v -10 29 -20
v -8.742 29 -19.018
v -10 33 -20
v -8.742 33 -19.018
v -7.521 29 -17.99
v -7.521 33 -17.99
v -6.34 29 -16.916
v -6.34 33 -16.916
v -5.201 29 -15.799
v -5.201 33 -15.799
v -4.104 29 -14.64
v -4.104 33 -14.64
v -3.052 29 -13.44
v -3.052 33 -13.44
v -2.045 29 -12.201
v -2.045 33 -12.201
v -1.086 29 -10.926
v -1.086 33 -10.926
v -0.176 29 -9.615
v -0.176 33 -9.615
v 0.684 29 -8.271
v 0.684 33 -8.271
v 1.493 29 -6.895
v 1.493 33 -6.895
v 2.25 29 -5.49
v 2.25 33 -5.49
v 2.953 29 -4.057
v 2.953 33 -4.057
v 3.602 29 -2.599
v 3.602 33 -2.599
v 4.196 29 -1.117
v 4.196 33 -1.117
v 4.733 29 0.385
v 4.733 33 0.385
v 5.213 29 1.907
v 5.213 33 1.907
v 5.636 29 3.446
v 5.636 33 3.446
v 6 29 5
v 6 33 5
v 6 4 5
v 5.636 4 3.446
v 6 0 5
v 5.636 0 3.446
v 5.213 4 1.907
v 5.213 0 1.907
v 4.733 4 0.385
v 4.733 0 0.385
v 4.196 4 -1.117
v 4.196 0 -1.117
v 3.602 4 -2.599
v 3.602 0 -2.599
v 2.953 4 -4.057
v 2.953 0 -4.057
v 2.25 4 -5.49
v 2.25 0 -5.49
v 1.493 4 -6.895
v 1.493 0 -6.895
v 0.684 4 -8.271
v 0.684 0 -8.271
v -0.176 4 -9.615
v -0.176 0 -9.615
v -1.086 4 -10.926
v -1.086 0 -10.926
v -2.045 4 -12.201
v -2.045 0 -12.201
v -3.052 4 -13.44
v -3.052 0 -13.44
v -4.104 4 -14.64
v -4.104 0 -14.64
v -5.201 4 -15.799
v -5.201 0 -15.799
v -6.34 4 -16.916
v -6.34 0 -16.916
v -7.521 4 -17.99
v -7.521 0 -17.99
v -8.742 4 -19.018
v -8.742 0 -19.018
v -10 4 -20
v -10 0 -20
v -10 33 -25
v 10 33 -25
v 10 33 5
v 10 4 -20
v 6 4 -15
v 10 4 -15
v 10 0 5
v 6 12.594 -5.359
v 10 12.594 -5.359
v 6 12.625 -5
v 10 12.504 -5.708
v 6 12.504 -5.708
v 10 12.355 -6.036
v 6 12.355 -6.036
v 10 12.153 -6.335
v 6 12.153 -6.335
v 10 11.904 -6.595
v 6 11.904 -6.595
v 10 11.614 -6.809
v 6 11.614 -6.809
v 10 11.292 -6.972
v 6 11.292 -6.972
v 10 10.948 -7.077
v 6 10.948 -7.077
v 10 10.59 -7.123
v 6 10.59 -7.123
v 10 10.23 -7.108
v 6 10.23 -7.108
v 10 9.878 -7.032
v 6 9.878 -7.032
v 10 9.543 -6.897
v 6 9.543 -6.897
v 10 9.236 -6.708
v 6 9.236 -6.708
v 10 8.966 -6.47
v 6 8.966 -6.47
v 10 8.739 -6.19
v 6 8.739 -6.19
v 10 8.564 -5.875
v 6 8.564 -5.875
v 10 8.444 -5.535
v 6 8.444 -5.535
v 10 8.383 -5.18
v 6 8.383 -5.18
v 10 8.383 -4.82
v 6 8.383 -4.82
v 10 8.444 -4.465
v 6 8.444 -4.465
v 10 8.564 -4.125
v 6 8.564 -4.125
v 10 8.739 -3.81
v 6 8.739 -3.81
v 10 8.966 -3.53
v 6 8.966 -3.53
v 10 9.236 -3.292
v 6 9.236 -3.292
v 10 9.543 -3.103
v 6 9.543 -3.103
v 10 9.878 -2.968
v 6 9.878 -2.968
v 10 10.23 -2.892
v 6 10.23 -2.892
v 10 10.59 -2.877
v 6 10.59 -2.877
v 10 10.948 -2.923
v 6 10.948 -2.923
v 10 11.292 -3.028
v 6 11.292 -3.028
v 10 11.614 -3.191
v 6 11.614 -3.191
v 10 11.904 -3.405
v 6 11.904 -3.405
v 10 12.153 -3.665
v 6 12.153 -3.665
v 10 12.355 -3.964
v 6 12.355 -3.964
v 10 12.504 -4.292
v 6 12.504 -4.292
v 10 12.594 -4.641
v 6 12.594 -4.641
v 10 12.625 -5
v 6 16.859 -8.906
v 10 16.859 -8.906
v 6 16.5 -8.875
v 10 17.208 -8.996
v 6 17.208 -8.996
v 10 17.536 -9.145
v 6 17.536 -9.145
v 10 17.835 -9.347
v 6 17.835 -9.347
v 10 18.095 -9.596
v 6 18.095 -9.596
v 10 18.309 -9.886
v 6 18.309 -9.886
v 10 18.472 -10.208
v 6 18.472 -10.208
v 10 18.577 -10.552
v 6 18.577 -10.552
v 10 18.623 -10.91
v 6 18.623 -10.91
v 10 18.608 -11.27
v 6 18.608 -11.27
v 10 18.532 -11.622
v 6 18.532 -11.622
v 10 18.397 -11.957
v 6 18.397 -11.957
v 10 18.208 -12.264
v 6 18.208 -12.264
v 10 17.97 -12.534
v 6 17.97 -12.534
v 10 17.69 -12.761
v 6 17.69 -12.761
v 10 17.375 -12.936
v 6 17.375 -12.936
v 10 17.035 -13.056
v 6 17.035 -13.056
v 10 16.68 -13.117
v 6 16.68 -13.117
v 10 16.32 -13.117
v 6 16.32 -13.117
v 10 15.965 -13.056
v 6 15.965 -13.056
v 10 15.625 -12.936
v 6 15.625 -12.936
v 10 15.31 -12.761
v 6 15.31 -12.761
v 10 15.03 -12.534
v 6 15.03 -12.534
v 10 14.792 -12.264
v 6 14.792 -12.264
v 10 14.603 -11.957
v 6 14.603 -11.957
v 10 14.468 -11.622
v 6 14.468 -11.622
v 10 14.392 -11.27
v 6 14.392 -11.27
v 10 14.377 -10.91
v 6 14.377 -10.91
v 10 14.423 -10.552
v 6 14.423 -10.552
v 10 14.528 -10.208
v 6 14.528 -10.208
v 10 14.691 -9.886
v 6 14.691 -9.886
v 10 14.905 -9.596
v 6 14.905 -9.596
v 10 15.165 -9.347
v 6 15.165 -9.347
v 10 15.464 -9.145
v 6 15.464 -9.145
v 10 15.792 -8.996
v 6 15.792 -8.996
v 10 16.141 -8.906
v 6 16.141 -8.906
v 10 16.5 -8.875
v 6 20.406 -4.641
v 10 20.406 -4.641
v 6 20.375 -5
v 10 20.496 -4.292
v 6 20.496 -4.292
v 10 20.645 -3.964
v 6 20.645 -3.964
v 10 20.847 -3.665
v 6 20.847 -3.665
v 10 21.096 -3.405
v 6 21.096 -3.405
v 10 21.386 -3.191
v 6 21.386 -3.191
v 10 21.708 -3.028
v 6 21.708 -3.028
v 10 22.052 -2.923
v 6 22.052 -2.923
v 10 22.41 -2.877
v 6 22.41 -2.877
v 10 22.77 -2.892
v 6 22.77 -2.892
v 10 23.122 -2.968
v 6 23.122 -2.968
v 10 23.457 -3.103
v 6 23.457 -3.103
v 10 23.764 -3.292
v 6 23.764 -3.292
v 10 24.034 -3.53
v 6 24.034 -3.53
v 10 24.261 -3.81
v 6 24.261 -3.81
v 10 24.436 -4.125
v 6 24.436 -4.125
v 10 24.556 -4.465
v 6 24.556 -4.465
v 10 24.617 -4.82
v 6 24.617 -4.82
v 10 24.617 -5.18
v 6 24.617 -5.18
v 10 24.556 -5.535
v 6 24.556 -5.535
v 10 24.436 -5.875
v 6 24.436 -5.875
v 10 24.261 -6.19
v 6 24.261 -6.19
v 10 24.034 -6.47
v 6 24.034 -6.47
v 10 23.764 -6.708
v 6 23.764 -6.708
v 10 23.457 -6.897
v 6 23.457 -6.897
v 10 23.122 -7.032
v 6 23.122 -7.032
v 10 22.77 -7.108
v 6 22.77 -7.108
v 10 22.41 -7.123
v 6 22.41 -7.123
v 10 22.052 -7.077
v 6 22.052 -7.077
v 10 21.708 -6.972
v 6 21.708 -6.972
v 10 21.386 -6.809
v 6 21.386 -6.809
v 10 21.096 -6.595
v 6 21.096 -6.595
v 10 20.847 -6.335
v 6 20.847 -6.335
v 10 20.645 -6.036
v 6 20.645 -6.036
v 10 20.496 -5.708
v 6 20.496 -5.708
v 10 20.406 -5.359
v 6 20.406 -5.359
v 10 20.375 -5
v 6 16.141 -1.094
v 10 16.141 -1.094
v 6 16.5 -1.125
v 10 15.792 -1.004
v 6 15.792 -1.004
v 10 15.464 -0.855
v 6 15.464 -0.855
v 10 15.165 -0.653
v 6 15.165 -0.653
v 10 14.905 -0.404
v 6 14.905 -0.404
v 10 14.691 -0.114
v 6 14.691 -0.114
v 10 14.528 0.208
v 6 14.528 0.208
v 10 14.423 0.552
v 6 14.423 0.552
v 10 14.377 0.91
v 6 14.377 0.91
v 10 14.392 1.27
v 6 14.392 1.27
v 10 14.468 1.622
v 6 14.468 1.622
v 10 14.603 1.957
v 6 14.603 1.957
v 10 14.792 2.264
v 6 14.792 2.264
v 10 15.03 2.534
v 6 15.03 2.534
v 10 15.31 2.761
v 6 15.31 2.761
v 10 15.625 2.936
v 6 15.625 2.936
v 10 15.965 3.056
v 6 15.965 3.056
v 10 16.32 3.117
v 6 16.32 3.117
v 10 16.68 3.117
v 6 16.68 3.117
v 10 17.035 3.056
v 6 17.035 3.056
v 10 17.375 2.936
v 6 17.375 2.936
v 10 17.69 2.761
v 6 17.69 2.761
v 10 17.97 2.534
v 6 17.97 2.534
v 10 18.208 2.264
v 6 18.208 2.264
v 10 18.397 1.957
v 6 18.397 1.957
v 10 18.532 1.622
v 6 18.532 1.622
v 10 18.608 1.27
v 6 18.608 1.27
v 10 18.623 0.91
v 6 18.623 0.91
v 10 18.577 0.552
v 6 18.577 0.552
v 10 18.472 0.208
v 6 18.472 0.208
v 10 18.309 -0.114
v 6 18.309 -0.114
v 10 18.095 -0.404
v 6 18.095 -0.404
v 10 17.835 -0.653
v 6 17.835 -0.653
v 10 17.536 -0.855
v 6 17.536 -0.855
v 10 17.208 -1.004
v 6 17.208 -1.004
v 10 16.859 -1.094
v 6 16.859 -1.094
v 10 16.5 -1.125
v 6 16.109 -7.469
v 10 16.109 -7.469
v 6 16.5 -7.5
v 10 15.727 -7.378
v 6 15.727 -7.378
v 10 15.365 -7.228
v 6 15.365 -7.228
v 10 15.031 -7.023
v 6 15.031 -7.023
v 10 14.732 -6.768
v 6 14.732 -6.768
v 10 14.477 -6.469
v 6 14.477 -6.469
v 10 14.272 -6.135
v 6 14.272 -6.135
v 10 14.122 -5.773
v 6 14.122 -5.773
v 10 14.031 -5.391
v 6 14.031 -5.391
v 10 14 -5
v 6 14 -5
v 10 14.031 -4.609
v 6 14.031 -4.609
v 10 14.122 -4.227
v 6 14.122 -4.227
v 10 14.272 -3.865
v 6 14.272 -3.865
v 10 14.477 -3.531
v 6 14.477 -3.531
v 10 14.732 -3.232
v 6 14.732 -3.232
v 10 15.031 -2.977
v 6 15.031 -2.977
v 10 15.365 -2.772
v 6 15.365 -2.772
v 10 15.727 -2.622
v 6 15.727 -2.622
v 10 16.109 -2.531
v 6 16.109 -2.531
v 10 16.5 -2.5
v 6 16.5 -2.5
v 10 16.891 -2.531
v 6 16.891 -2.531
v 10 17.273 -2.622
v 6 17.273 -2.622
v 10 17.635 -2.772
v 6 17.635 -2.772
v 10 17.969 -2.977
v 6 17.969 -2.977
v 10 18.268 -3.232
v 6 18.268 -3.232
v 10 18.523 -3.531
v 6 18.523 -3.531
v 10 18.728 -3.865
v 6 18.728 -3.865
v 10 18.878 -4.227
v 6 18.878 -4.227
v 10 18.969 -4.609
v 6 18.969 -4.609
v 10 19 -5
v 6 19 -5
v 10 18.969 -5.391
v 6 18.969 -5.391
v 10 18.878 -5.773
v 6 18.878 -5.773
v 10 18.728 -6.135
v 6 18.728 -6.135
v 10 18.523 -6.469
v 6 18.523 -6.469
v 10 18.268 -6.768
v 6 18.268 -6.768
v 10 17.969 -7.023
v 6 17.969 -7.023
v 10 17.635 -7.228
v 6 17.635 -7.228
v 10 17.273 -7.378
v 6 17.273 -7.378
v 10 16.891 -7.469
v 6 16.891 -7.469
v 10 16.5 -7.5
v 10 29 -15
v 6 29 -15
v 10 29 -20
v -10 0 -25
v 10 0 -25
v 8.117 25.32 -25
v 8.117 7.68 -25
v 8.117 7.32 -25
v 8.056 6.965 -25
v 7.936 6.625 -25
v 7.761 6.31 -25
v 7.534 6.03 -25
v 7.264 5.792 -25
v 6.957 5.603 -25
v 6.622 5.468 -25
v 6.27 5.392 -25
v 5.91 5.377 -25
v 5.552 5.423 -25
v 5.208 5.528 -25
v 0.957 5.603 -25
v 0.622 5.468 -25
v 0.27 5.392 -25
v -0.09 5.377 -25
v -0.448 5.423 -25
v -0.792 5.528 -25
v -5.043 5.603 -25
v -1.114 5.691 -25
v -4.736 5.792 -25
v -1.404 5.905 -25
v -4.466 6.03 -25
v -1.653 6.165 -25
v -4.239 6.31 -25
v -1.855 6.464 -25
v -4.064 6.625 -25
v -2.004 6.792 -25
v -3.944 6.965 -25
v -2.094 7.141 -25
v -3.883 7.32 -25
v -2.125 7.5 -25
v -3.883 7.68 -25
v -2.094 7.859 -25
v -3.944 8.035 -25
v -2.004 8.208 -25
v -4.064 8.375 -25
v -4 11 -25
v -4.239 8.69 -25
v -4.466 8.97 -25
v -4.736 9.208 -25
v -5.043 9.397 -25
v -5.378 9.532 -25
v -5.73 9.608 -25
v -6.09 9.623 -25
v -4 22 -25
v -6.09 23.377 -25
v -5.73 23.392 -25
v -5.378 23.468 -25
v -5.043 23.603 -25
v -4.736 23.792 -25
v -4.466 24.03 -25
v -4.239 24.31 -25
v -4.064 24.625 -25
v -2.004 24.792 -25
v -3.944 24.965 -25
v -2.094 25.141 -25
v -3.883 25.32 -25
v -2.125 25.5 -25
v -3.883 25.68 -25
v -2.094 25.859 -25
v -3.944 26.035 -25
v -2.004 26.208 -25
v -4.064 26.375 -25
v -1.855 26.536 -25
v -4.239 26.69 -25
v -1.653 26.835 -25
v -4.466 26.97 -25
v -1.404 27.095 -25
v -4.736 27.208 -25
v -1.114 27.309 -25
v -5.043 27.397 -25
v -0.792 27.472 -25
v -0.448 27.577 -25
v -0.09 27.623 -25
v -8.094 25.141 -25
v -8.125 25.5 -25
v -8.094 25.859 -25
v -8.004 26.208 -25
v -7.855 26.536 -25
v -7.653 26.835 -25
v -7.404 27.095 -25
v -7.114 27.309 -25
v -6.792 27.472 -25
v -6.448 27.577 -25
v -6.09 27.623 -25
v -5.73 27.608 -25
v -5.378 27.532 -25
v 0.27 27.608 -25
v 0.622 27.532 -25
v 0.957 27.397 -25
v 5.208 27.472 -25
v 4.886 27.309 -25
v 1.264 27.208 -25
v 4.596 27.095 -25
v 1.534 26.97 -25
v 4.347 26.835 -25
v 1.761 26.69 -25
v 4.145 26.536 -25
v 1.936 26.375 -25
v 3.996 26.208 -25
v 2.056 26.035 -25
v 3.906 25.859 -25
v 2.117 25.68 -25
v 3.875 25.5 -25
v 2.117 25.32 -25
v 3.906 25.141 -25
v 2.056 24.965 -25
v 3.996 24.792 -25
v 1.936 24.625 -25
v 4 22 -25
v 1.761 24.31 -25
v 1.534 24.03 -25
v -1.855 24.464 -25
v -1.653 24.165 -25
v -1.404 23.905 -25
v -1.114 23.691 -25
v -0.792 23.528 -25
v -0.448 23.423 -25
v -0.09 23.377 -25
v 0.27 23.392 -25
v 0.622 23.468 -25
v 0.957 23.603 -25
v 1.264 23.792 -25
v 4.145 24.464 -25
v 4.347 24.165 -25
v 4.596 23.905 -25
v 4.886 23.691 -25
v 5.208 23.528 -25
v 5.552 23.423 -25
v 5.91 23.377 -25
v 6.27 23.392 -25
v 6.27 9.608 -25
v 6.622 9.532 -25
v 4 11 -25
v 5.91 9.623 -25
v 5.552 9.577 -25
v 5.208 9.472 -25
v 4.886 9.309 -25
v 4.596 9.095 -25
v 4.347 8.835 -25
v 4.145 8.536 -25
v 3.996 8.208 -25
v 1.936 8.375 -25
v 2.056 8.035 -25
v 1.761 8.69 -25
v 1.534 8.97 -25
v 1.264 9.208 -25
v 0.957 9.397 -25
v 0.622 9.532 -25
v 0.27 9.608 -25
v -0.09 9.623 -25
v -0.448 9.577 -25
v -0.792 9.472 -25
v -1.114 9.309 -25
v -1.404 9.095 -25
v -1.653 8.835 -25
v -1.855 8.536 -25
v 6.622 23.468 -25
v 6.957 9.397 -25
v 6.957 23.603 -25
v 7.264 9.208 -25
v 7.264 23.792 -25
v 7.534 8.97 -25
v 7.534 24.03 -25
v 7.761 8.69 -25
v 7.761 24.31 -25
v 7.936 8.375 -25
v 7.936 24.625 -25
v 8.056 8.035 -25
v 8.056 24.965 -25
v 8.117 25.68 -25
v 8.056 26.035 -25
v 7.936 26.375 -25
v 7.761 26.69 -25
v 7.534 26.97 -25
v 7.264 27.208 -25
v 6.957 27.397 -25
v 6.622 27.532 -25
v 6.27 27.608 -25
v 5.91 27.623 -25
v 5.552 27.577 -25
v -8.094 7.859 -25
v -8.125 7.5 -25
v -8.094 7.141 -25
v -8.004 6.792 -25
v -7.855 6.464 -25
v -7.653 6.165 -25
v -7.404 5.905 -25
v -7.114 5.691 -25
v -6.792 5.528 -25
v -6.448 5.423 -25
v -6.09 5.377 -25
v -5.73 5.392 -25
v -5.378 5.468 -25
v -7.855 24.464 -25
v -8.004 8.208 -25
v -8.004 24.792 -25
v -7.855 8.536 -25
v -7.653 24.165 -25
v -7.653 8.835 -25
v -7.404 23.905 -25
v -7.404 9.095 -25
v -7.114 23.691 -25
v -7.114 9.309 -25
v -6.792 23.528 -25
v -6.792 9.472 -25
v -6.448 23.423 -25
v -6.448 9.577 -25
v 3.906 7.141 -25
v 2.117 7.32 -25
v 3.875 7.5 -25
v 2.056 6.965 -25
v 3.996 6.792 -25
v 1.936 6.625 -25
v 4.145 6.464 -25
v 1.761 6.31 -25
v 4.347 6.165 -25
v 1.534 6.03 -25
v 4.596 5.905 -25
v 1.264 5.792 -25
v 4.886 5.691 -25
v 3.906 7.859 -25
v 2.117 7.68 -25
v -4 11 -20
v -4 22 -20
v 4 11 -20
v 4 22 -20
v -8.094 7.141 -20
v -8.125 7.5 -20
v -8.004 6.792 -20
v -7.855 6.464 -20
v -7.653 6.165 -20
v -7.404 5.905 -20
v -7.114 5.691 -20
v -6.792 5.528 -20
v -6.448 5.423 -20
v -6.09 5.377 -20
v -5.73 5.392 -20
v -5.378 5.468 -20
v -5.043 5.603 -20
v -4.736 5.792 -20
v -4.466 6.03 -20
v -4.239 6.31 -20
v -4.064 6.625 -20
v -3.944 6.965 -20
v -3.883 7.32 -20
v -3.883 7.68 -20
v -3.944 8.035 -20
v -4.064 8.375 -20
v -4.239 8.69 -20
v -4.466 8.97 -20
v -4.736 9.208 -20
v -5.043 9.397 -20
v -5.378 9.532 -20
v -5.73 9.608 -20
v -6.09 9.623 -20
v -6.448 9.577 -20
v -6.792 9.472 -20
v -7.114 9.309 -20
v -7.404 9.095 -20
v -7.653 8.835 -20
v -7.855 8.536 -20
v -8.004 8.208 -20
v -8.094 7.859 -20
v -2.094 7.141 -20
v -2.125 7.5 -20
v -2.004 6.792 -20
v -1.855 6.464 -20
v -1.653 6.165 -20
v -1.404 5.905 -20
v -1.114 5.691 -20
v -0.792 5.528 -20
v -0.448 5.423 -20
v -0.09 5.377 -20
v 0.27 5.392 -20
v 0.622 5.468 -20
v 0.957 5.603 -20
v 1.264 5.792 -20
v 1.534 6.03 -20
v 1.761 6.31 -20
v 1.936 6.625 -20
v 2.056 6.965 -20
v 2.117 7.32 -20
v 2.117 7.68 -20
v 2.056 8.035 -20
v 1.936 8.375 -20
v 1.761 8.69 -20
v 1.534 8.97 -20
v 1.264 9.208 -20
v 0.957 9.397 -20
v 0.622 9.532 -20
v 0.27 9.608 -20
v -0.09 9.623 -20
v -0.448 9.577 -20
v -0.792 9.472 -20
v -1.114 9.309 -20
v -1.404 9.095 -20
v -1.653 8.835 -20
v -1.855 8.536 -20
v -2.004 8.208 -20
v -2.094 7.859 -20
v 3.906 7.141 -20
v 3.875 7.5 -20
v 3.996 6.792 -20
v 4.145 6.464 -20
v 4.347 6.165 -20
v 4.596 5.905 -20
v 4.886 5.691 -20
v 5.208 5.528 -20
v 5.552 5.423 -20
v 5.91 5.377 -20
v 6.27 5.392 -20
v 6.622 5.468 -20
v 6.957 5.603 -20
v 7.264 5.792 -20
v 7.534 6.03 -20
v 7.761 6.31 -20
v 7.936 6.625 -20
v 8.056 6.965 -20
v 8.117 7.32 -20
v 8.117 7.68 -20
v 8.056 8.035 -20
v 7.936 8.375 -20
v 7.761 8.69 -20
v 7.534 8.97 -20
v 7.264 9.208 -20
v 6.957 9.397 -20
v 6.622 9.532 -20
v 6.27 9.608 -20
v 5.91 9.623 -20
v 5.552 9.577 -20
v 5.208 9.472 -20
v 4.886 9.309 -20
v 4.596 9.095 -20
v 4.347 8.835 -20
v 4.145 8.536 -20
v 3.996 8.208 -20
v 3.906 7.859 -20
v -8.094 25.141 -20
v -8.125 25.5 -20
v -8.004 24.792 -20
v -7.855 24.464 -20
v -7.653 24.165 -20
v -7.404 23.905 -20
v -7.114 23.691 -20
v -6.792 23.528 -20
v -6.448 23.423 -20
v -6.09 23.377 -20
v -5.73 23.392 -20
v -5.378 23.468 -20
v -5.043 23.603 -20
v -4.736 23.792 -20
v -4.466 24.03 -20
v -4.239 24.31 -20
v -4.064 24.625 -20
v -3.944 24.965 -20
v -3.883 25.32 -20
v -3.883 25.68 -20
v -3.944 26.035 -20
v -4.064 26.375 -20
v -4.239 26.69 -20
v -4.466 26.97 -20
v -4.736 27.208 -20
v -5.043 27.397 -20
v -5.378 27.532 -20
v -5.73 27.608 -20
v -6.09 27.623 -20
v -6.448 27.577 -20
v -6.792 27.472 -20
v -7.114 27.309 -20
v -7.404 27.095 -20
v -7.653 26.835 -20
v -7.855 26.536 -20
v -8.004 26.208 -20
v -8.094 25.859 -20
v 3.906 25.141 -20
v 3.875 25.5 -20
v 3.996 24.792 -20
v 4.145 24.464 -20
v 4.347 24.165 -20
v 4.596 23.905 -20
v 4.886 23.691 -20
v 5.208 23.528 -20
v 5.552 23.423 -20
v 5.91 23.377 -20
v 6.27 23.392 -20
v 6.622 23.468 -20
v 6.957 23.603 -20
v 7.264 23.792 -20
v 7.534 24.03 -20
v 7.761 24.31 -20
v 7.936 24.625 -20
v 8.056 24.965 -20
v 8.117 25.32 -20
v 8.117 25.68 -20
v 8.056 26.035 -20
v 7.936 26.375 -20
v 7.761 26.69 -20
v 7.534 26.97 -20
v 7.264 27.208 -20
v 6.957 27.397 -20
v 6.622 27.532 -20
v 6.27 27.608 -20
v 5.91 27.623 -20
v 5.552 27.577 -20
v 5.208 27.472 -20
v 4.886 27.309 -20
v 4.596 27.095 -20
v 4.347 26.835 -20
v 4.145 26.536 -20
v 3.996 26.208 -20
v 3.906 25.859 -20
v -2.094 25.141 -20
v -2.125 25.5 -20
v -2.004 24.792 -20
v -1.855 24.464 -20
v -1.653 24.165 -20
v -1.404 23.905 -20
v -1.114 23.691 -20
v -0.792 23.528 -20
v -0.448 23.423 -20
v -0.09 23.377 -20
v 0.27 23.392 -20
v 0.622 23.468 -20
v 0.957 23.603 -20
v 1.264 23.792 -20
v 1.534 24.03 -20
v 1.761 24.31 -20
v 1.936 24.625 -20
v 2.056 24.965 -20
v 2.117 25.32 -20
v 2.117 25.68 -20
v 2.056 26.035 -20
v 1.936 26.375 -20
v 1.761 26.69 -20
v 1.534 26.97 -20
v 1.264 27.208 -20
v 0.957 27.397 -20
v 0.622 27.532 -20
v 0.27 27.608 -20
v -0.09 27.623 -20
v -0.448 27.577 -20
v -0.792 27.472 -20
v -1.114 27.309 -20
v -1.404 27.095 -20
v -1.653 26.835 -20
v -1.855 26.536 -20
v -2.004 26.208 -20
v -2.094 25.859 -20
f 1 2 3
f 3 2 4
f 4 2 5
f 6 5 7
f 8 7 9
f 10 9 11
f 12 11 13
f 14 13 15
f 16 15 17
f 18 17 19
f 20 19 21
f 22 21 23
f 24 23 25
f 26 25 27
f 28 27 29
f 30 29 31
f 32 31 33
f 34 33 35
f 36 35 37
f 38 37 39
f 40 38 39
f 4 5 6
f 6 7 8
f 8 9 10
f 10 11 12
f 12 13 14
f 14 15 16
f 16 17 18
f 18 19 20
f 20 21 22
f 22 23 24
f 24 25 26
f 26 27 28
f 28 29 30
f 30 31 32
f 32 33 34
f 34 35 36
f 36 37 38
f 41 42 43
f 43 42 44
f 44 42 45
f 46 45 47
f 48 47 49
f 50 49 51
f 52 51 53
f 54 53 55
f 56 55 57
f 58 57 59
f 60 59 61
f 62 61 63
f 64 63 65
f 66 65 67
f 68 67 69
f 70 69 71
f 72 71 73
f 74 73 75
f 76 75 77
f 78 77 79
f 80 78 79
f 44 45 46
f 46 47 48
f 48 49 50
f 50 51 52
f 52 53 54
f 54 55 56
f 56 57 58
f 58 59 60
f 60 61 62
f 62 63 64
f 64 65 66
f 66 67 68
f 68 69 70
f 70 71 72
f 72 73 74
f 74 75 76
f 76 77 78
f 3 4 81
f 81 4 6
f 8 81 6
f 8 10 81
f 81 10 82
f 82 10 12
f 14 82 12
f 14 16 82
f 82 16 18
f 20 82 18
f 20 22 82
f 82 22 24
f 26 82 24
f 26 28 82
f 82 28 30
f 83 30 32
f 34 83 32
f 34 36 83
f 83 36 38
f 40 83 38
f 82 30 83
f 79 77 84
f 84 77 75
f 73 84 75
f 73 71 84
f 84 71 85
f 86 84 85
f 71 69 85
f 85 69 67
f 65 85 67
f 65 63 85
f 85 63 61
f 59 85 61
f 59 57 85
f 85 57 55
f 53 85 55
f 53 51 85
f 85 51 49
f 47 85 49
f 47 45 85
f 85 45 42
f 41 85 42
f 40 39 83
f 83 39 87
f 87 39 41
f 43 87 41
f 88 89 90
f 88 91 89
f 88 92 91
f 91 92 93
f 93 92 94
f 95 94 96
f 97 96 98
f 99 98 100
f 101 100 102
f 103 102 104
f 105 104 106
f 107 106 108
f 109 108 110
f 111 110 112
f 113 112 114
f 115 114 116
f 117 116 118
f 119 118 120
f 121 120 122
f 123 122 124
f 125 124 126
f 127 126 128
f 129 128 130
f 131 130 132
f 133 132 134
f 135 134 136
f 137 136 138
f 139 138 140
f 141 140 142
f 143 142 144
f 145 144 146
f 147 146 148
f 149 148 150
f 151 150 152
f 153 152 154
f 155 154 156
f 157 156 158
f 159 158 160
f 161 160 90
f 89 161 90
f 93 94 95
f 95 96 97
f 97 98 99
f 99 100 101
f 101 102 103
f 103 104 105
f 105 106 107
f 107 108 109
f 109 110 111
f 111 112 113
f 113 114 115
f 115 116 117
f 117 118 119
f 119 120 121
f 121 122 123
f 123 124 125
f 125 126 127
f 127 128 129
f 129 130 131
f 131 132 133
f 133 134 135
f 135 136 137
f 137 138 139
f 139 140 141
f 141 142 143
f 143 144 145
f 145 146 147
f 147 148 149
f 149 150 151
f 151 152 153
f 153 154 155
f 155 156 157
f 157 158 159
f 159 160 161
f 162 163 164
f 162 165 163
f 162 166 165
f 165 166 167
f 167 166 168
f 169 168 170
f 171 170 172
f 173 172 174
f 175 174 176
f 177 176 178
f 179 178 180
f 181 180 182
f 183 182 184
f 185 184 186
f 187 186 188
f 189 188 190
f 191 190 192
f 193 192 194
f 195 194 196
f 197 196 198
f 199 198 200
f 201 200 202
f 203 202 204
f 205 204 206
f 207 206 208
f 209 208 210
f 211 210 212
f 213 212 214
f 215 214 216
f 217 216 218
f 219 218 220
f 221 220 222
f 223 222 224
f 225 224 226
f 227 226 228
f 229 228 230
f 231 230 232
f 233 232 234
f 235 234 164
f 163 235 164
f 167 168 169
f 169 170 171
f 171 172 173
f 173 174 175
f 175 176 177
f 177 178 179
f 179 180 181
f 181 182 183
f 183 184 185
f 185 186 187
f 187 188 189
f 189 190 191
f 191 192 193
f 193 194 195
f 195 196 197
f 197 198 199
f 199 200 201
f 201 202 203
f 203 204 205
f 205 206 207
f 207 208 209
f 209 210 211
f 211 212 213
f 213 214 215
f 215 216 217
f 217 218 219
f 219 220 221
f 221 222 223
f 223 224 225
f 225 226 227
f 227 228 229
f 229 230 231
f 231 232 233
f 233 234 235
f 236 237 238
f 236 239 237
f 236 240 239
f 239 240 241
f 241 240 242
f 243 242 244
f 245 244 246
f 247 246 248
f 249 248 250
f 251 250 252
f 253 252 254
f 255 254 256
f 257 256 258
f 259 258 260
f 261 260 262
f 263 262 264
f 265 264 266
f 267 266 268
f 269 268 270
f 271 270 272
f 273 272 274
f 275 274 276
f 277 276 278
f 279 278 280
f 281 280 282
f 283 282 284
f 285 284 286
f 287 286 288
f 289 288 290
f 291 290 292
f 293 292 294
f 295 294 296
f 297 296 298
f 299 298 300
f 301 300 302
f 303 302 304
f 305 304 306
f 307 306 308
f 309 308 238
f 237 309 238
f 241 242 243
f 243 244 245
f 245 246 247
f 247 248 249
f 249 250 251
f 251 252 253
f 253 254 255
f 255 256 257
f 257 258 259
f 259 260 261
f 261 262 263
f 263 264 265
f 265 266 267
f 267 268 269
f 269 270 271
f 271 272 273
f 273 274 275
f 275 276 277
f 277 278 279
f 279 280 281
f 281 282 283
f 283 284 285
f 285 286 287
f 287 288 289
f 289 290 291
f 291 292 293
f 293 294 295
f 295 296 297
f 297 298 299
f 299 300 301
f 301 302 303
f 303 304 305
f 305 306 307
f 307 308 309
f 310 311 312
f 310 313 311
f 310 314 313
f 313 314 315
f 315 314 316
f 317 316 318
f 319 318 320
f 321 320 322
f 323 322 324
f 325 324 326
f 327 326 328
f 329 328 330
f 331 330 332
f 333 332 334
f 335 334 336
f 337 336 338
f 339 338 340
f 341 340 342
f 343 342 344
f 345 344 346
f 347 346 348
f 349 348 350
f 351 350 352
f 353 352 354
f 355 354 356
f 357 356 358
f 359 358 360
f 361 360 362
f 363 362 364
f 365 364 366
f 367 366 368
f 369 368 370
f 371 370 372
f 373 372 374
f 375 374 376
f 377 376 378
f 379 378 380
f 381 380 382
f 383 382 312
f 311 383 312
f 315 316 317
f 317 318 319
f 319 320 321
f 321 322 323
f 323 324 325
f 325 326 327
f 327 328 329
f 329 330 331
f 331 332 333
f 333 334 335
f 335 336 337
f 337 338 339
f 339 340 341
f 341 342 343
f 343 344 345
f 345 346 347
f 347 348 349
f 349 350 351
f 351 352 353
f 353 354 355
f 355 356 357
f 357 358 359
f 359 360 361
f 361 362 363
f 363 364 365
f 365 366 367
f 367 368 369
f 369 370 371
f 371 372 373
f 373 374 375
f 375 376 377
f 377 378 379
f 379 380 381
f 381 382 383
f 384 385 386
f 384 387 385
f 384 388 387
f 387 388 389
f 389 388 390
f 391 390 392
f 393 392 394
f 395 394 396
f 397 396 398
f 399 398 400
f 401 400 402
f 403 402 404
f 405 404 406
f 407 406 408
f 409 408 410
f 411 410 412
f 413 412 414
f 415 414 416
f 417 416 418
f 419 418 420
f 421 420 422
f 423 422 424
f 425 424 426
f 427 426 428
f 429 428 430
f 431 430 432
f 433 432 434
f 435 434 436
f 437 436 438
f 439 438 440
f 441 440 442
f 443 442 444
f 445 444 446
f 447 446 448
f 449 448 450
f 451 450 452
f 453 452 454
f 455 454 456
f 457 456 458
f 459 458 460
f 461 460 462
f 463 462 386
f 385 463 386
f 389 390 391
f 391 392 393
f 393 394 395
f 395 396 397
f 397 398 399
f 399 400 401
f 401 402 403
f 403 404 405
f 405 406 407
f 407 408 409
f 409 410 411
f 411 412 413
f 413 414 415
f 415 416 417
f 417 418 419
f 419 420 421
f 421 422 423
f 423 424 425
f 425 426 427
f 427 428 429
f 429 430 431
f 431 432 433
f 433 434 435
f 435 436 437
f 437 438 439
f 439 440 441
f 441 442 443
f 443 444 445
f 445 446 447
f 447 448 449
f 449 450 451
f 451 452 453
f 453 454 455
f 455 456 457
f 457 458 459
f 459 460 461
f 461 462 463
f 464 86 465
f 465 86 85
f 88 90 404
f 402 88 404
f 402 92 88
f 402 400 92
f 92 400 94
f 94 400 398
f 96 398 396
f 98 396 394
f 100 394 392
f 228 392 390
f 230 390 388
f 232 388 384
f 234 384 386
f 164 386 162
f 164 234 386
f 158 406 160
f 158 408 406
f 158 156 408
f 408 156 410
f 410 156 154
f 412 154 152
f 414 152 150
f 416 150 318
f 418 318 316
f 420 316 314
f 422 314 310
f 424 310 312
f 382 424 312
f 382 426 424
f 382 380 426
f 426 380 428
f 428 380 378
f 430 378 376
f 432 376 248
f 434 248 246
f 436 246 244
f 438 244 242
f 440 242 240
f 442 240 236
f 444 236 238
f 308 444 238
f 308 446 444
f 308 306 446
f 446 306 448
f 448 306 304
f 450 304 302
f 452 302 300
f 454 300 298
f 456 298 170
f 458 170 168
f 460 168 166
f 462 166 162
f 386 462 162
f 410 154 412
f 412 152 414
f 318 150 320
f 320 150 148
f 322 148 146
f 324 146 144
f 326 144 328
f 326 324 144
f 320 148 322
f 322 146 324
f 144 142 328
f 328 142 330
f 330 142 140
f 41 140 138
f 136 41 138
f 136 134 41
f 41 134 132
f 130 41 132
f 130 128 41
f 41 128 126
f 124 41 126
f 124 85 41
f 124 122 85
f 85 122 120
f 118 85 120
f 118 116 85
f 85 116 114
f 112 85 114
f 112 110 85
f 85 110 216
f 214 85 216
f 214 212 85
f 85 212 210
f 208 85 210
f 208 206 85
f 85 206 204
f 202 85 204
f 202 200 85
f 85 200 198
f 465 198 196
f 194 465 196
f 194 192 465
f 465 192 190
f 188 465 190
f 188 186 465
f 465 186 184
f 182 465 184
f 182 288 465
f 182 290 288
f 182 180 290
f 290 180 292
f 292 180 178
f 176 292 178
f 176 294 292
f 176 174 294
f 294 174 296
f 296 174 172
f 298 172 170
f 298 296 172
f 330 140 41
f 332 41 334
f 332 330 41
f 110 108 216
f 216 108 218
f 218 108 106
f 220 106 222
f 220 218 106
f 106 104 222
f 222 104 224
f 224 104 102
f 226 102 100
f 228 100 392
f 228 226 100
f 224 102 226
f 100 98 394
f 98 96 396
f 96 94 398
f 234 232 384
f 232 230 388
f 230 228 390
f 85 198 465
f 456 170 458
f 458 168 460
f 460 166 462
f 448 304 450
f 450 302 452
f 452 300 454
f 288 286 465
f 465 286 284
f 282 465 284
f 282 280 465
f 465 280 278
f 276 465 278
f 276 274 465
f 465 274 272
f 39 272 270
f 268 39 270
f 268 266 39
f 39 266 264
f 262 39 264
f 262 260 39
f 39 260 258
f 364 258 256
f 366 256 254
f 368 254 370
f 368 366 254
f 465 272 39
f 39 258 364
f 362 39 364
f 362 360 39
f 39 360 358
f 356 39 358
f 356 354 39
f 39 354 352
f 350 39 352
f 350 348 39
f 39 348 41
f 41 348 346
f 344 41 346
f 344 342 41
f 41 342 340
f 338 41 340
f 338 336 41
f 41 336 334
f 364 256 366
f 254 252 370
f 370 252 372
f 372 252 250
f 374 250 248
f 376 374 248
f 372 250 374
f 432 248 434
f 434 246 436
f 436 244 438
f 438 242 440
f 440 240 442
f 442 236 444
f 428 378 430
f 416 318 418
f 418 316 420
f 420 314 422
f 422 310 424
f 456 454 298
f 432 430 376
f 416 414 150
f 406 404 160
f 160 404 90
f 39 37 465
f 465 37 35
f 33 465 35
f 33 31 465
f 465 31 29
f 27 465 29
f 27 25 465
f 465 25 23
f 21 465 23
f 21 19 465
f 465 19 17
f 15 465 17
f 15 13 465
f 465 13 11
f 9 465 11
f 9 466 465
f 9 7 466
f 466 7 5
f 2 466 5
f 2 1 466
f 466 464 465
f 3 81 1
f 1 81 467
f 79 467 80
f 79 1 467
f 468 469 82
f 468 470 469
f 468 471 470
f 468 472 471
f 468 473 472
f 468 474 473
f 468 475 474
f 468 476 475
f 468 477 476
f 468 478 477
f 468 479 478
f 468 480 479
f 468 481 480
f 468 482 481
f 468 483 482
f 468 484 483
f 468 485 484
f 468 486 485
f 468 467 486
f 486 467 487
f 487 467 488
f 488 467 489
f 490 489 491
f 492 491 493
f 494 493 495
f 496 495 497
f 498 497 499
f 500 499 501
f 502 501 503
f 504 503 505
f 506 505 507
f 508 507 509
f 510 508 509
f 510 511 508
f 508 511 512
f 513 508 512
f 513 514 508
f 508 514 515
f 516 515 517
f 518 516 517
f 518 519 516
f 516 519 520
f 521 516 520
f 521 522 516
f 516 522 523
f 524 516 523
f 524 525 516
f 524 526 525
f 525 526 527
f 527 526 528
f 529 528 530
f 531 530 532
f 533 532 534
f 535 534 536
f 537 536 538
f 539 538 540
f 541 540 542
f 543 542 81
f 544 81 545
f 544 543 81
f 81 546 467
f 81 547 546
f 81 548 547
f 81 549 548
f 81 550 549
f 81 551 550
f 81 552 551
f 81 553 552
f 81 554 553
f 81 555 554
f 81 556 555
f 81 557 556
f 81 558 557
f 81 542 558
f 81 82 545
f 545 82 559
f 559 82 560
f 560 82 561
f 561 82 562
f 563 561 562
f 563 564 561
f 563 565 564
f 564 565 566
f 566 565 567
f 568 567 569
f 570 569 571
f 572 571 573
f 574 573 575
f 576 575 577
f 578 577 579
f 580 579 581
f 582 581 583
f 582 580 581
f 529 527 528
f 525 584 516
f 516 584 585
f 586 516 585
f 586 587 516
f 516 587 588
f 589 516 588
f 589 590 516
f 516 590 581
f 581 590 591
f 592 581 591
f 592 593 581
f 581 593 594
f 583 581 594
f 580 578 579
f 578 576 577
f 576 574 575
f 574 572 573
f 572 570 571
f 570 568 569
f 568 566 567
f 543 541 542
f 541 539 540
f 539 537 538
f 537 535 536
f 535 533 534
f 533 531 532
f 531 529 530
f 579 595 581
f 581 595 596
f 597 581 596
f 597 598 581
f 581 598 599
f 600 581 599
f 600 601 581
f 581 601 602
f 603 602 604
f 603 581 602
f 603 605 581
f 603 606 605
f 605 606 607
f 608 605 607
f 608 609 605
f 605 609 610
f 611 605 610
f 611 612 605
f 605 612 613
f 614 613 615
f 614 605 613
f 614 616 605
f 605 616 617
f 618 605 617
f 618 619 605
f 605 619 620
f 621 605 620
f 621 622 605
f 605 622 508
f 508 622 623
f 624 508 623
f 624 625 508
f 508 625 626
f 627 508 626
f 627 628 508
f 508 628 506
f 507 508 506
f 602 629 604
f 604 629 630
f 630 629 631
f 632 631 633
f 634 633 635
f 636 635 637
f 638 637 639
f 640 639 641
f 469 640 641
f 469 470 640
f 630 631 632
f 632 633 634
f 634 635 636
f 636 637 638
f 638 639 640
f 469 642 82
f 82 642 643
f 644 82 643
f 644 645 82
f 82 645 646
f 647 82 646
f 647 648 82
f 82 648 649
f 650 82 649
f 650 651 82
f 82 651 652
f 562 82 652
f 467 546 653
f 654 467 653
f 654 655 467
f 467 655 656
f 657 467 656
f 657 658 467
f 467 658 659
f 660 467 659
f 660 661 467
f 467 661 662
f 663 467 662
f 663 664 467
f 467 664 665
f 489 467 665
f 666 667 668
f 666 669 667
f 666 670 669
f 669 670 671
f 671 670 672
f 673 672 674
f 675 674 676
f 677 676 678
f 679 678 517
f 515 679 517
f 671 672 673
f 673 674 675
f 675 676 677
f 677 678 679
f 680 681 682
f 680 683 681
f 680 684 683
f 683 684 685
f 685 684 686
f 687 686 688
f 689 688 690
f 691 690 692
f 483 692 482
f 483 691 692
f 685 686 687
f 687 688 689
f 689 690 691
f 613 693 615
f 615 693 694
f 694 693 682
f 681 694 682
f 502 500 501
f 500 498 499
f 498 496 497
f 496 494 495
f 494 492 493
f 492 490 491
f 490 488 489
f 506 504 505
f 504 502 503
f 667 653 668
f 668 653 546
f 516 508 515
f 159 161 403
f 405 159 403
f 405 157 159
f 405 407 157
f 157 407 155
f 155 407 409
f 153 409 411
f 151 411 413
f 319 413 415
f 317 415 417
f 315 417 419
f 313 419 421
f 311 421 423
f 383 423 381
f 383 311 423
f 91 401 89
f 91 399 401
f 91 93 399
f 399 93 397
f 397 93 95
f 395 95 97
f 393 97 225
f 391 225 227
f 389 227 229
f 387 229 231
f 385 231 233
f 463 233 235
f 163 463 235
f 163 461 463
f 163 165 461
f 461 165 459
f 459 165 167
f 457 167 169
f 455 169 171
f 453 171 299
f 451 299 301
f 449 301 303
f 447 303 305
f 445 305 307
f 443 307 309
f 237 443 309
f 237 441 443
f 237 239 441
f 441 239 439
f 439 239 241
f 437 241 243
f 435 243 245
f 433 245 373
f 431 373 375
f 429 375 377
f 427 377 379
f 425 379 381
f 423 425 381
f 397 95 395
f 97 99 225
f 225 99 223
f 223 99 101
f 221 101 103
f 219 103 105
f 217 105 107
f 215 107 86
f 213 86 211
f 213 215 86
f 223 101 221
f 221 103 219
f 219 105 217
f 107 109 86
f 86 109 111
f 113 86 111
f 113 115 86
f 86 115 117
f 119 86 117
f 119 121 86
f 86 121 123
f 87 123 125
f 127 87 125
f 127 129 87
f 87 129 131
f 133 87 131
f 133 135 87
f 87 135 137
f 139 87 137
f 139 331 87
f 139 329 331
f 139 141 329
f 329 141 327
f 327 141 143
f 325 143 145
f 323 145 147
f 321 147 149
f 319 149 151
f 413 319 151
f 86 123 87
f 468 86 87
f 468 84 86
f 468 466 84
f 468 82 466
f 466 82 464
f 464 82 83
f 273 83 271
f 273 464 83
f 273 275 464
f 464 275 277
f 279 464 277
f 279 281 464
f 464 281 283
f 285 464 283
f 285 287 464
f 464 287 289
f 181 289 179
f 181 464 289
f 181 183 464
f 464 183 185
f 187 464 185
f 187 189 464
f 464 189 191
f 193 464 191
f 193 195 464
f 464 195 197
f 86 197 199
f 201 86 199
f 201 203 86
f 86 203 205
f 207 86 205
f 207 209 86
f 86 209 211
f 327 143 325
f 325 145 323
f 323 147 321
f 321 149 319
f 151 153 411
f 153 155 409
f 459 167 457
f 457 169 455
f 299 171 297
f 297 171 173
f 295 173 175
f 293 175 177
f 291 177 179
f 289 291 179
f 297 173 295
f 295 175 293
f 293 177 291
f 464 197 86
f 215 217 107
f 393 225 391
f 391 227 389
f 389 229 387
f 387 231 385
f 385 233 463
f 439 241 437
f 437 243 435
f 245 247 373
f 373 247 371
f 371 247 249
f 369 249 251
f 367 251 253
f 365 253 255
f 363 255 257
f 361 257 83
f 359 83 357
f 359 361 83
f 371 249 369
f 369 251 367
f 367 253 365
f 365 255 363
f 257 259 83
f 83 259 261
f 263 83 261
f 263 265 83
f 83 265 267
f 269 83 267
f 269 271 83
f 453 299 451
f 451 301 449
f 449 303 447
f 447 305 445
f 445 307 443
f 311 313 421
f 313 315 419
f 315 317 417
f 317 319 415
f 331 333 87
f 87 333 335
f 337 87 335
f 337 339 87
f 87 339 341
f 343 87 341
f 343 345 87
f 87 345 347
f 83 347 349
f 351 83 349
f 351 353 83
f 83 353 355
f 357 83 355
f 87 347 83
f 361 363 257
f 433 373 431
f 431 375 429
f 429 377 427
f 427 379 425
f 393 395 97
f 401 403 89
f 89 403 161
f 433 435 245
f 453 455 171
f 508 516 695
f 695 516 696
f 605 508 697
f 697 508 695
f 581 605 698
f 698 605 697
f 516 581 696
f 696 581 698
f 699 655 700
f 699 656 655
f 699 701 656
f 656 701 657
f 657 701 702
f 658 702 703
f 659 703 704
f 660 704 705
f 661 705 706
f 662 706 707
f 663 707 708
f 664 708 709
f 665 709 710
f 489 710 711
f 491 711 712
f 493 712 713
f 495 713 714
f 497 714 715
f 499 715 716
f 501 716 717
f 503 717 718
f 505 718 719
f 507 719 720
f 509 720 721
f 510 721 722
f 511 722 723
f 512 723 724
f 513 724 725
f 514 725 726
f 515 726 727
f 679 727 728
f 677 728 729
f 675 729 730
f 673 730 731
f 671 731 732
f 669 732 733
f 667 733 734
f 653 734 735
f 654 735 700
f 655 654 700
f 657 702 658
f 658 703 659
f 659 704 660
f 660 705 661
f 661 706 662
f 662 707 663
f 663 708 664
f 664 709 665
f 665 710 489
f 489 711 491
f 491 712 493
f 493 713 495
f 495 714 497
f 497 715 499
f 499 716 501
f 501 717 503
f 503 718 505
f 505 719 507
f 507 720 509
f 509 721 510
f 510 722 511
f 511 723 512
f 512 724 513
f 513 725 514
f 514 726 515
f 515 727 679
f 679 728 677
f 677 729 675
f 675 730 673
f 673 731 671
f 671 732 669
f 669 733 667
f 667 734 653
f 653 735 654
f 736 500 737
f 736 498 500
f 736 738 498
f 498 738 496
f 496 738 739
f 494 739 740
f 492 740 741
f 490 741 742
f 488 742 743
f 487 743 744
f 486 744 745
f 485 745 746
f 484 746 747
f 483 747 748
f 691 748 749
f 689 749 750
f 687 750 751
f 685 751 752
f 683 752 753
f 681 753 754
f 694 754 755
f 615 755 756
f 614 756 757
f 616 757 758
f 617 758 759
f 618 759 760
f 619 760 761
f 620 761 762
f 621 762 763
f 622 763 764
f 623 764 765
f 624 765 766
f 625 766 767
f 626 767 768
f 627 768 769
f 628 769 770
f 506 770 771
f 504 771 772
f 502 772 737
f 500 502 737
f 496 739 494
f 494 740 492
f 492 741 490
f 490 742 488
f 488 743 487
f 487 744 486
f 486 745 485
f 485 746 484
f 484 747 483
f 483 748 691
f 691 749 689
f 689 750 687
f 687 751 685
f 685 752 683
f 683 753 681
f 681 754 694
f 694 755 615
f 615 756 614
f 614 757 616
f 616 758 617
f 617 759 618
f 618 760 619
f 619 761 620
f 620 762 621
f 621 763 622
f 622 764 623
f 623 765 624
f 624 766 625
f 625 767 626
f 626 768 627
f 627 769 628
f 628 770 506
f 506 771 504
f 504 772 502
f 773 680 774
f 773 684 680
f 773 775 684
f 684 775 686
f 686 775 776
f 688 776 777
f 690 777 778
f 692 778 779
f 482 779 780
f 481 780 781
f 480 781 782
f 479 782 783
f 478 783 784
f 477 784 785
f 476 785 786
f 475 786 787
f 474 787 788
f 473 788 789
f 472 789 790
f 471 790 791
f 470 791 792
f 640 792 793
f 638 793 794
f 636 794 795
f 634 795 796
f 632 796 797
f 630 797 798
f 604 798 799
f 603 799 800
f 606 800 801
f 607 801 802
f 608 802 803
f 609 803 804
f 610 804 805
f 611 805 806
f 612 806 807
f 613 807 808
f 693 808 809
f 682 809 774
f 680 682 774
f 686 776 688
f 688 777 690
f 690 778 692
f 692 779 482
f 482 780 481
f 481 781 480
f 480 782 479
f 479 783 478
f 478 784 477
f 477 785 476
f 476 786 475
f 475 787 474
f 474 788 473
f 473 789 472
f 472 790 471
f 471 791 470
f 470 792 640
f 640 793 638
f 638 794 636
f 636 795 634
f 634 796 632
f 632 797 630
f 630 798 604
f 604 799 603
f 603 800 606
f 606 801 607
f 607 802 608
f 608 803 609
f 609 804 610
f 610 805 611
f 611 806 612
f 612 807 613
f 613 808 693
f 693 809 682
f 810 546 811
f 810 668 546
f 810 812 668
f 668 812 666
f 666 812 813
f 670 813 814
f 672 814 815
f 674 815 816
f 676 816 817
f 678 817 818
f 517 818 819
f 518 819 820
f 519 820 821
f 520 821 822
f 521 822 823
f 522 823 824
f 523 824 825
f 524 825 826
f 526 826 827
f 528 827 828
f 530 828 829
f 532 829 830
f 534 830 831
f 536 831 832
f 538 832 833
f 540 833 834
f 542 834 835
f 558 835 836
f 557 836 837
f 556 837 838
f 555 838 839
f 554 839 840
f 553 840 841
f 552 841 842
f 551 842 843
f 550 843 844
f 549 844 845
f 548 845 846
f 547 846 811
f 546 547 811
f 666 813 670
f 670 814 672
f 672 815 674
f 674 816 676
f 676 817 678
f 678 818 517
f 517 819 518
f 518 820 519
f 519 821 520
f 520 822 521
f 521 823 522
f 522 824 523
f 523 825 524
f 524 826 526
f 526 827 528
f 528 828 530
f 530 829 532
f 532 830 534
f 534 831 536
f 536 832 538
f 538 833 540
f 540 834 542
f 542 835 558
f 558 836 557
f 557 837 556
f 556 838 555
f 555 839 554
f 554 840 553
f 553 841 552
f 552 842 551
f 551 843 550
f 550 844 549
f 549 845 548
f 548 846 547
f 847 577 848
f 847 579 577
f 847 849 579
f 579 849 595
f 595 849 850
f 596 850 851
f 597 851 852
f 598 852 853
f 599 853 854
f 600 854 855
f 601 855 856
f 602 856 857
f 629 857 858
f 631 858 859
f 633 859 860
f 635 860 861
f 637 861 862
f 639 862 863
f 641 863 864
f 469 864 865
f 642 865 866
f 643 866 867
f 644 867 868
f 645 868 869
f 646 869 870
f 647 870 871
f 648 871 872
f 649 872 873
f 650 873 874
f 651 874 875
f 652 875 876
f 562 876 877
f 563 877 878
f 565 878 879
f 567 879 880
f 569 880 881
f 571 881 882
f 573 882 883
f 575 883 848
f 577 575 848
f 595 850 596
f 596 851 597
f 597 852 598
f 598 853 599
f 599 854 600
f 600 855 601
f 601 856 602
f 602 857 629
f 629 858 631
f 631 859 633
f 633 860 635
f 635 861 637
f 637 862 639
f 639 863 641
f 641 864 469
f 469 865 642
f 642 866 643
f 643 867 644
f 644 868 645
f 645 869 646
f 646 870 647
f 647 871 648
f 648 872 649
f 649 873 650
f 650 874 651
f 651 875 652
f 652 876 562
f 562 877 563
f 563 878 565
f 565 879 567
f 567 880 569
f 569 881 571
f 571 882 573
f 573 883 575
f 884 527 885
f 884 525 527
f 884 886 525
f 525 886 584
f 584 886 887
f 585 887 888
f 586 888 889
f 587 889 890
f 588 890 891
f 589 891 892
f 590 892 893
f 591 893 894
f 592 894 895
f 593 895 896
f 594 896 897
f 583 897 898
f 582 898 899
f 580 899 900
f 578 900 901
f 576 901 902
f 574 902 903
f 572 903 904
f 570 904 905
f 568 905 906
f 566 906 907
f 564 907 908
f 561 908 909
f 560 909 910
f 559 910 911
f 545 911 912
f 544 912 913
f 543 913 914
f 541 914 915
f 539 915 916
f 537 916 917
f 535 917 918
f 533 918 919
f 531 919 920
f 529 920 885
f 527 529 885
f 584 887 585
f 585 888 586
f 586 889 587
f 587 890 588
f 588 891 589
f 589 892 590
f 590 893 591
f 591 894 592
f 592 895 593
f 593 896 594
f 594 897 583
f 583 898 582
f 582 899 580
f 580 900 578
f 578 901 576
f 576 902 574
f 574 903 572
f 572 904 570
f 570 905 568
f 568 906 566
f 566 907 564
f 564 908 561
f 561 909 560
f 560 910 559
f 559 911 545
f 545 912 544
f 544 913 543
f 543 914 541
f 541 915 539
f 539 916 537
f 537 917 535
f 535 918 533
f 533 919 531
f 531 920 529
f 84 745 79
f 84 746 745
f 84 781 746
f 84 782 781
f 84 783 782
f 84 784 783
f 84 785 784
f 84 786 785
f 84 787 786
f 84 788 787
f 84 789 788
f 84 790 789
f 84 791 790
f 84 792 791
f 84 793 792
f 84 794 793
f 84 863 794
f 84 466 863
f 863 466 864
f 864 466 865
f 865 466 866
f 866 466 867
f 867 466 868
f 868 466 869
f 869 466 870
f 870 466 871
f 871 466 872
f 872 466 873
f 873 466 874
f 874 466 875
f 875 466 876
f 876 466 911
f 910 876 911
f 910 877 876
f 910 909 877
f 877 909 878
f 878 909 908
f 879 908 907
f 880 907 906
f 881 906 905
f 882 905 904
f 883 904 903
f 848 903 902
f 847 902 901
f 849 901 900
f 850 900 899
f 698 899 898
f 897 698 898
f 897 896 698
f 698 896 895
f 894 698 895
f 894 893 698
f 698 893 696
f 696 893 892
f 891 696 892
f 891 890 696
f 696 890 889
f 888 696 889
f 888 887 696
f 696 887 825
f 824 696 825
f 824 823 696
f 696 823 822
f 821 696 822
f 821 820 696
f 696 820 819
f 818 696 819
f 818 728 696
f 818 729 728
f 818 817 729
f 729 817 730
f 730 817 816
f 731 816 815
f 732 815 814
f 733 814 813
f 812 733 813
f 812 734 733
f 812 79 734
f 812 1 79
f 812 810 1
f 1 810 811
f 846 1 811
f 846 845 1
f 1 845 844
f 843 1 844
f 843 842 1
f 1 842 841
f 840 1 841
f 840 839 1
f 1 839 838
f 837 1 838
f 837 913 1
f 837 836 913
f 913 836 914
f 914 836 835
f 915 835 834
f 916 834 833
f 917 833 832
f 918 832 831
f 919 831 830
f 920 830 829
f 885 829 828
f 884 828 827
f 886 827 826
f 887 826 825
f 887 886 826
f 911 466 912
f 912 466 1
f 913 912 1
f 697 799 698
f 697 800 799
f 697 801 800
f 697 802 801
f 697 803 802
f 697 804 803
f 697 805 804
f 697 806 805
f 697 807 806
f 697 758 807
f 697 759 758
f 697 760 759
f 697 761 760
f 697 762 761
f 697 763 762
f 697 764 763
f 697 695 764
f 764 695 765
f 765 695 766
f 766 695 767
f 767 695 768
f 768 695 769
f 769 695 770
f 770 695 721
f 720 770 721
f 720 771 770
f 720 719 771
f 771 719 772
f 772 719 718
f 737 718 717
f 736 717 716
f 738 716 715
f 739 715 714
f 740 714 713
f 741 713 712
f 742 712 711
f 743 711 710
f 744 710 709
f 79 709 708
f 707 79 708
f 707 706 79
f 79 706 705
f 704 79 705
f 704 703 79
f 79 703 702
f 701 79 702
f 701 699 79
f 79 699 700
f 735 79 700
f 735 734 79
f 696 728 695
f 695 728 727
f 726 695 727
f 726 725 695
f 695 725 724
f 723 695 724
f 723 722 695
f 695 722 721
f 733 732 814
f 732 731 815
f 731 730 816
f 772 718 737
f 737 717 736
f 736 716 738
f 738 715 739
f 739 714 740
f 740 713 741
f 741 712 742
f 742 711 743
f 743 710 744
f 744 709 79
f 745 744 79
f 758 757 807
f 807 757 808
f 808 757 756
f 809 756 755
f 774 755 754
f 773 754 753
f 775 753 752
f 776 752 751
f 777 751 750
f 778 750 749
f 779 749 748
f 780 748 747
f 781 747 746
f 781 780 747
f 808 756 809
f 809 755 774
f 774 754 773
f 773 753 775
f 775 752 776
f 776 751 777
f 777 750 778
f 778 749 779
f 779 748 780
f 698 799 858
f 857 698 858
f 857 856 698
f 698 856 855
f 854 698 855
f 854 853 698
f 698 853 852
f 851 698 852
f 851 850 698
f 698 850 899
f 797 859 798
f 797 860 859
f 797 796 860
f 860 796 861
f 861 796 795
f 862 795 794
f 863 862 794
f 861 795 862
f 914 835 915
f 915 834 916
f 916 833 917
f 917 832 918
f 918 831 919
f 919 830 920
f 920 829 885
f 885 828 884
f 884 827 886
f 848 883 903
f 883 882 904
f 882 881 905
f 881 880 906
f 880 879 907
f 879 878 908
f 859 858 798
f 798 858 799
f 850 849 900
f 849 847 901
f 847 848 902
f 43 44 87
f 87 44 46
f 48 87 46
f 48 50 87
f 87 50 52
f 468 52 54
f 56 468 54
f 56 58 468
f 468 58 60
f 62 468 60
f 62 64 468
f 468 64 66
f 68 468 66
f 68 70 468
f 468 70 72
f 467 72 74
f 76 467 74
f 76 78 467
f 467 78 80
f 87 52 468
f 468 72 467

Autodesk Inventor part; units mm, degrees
ref_plane "YZ Plane" through (0, 0, 0) normal (1, 0, 0) x (0, 1, 0)
ref_plane "XZ Plane" through (0, 0, 0) normal (0, 1, 0) x (-1, 0, 0)
ref_plane "XY Plane" through (0, 0, 0) normal (0, 0, 1) x (1, 0, 0)
sketch "Sketch1" plane through (0, 0, 0) normal (0, 1, 0) x (-1, 0, 0)
  circle A0 centre (0, 0) radius 10
  dimension "d0" = 20
extrude "Extrusion1" add sketch "Sketch1" along normal blind 4
sketch "Sketch2" plane through (0, 4, 0) normal (0, 1, 0) x (1, 0, 0)
  line L0 (0, 0) -> (0, 6)
  circle A0 centre (0, 6) radius 2.125
  dimension "d3" = 6
  dimension "d4" = 4.25
extrude "Extrusion2" cut sketch "Sketch2" against normal through all
pattern_circular "Circular Pattern1" count 4 over 360 about axis through (0, 0, 0) along (0, 1, 0) of "Extrusion2"
sketch "Sketch3" plane through (0, 0, 0) normal (0, -1, 0) x (1, 0, 0)
  circle A0 centre (0, 0) radius 10 projected
  arc A1 (-10, 0) -> (10, 0) centre (0, 0) ccw
  line L0 (10, 0) -> (10, -25)
  line L1 (10, -25) -> (-10, -25)
  line L2 (-10, -25) -> (-10, 0)
  dimension "d10" = 25
extrude "Extrusion3" add sketch "Sketch3" against normal blind 4 contours L0 L1 L2 A0
sketch "Sketch4" plane through (0, 4, 0) normal (0, 1, 0) x (1, 0, 0)
  line L0 (-10, 25) -> (-10, 0) projected
  line L1 (10, 25) -> (-10, 25)
  line L2 (-10, 25) -> (-10, 20)
  line L3 (-10, 20) -> (10, 20)
  line L4 (10, 20) -> (10, 25)
  point P0 (0, 0)
  dimension "d13" = 5
extrude "Extrusion4" add sketch "Sketch4" along normal blind 27
sketch "Sketch5" plane through (10, 0, -25) normal (0, 0, -1) x (-1, 0, 0)
  point P0 (10, 0)
sketch "Sketch6" plane through (10, 0, -25) normal (0, 0, -1) x (-1, 0, 0)
  line L0 (7.875, 4) -> (12.125, 4) projected
  line L1 (20, 31) -> (0, 31) projected
  line L2 (10, 17.5) -> (20, 17.5)
  line L3 (10, 17.5) -> (10, 23.5)
  line L4 (10, 23.5) -> (10, 25.5)
  circle A0 centre (10, 25.5) radius 2.125
  point P0 (10, 0)
  dimension "d16" = 6
  dimension "d26" = 2
  dimension "d27" = 4.25
extrude "Extrusion5" cut sketch "Sketch6" against normal through all
pattern_linear "Rectangular Pattern1" count 3 spacing 6 along (-1, 0, 0) count 2 spacing 18 along (0, -1, 0) of "Extrusion5" first direction both ways yes
sketch "Sketch7" plane through (-10, 4, -20) normal (0, 0, 1) x (1, 0, 0)
  circle A0 centre (10, 21.5) radius 2.125 projected
  circle A1 centre (10, 3.5) radius 2.125 projected
  line L0 (10, 21.5) -> (10, 3.5)
  line L1 (6, 7) -> (14, 7)
  line L2 (14, 7) -> (14, 18)
  line L3 (14, 18) -> (6, 18)
  line L4 (6, 18) -> (6, 7)
  line L5 (6, 7) -> (14, 18) construction
  line L6 (14, 7) -> (6, 18) construction
  point P0 (10, -4)
  point P1 (10, 12.5)
  dimension "d29" = 8
  dimension "d30" = 11
extrude "Extrusion6" cut sketch "Sketch7" against normal through all contours L3 L2 L1 L0 | L0 L1 L4 L3
sketch "Sketch8" plane through (-10, 4, -20) normal (0, 0, 1) x (1, 0, 0)
  circle A0 centre (4, 21.5) radius 2.125 projected
  line L0 (4, 21.5) -> (4, 25)
  point P0 (10, -4)
  dimension "d33" = 3.5
sketch "Sketch9" plane through (10, 0, -25) normal (0, 0, -1) x (-1, 0, 0)
  circle A0 centre (16, 25.5) radius 2.125 projected
  line L0 (16, 25.5) -> (16, 29)
  line L1 (20, 4) -> (20, 31) projected
  line L2 (20, 29) -> (0, 29)
  line L3 (0, 29) -> (0, 33)
  line L4 (0, 33) -> (20, 33)
  line L5 (20, 33) -> (20, 29)
  point P0 (10, 0)
  dimension "d34" = 3.5
  dimension "d35" = 4
extrude "Extrusion7" add sketch "Sketch9" against normal blind 30 contours L2 L3 L4 L5 L1
sketch "Sketch10" plane through (0, 0, 0) normal (0, -1, 0) x (1, 0, 0)
  line L0 (-10, -20) -> (11.4929, -20)
  line L1 (11.4929, -20) -> (11.4929, 11.4929)
  line L2 (11.4929, 11.4929) -> (-10, 11.4929)
  line L3 (-10, 11.4929) -> (-10, -20)
  point P0 (0, 0)
extrude "Extrusion8" cut sketch "Sketch10" against normal blind 4
sketch "Sketch11" plane through (-10, 0, -20) normal (0, 0, 1) x (1, 0, 0)
  line L0 (20, 29) -> (20, 0) projected
  line L1 (0, 0) -> (20, 0)
  line L2 (20, 0) -> (20, 4)
  line L3 (20, 4) -> (0, 4)
  line L4 (0, 4) -> (0, 0)
  point P0 (10, 0)
  dimension "d40" = 4
extrude "Extrusion9" add sketch "Sketch11" along normal blind 25
sketch "Sketch12" plane through (10, 0, -25) normal (1, 0, 0) x (0, 0, -1)
  line L0 (-5, 29) -> (-30, 29) projected
  line L1 (-30, 4) -> (-10, 4)
  line L2 (-10, 4) -> (-10, 29)
  line L3 (-10, 29) -> (-30, 29)
  line L4 (-30, 29) -> (-30, 4)
  point P0 (-25, 0)
  dimension "d43" = 20
extrude "Extrusion10" add sketch "Sketch12" against normal blind 4
sketch "Sketch13" plane through (10, 0, 5) normal (1, 0, 0) x (0, 0, -1)
  line L0 (20, 29) -> (20, 4) projected
  line L1 (20, 16.5) -> (0, 16.5)
  line L2 (0, 0) -> (0, 33) projected
  line L3 (10, 16.5) -> (4, 16.5)
  circle A0 centre (10, 16.5) radius 2.5
  point P0 (5, 0)
  dimension "d46" = 6
  dimension "d47" = 5
extrude "Extrusion11" cut sketch "Sketch13" against normal through all
sketch "Sketch14" plane through (10, 0, 5) normal (1, 0, 0) x (0, 0, -1)
  circle A0 centre (10, 16.5) radius 2.5 projected
  line L0 (10, 16.5) -> (4, 16.5)
  circle A1 centre (4, 16.5) radius 2.125
  point P0 (5, 0)
  dimension "d50" = 6
  dimension "d51" = 4.25
extrude "Extrusion12" cut sketch "Sketch14" against normal through all contours A1
pattern_circular "Circular Pattern2" count 4 over 360 about axis through (10, 16.5, -5) along (-1, 0, 0) of "Extrusion12"
sketch "Sketch15" plane through (-10, 33, -25) normal (0, 1, 0) x (1, 0, 0)
  line L0 (16, -30) -> (0, -30)
  line L1 (0, -30) -> (16, -30) projected
  line L2 (0, -30) -> (0, -5)
  line L3 (0, 0) -> (0, -30) projected
  arc A0 (16, -30) -> (0, -5) centre (-25.4317, -38.8963) ccw
  point P0 (10, -25)
  dimension "d57" = 25
extrude "Extrusion13" cut sketch "Sketch15" against normal through all
properties part number "PickJoint"
